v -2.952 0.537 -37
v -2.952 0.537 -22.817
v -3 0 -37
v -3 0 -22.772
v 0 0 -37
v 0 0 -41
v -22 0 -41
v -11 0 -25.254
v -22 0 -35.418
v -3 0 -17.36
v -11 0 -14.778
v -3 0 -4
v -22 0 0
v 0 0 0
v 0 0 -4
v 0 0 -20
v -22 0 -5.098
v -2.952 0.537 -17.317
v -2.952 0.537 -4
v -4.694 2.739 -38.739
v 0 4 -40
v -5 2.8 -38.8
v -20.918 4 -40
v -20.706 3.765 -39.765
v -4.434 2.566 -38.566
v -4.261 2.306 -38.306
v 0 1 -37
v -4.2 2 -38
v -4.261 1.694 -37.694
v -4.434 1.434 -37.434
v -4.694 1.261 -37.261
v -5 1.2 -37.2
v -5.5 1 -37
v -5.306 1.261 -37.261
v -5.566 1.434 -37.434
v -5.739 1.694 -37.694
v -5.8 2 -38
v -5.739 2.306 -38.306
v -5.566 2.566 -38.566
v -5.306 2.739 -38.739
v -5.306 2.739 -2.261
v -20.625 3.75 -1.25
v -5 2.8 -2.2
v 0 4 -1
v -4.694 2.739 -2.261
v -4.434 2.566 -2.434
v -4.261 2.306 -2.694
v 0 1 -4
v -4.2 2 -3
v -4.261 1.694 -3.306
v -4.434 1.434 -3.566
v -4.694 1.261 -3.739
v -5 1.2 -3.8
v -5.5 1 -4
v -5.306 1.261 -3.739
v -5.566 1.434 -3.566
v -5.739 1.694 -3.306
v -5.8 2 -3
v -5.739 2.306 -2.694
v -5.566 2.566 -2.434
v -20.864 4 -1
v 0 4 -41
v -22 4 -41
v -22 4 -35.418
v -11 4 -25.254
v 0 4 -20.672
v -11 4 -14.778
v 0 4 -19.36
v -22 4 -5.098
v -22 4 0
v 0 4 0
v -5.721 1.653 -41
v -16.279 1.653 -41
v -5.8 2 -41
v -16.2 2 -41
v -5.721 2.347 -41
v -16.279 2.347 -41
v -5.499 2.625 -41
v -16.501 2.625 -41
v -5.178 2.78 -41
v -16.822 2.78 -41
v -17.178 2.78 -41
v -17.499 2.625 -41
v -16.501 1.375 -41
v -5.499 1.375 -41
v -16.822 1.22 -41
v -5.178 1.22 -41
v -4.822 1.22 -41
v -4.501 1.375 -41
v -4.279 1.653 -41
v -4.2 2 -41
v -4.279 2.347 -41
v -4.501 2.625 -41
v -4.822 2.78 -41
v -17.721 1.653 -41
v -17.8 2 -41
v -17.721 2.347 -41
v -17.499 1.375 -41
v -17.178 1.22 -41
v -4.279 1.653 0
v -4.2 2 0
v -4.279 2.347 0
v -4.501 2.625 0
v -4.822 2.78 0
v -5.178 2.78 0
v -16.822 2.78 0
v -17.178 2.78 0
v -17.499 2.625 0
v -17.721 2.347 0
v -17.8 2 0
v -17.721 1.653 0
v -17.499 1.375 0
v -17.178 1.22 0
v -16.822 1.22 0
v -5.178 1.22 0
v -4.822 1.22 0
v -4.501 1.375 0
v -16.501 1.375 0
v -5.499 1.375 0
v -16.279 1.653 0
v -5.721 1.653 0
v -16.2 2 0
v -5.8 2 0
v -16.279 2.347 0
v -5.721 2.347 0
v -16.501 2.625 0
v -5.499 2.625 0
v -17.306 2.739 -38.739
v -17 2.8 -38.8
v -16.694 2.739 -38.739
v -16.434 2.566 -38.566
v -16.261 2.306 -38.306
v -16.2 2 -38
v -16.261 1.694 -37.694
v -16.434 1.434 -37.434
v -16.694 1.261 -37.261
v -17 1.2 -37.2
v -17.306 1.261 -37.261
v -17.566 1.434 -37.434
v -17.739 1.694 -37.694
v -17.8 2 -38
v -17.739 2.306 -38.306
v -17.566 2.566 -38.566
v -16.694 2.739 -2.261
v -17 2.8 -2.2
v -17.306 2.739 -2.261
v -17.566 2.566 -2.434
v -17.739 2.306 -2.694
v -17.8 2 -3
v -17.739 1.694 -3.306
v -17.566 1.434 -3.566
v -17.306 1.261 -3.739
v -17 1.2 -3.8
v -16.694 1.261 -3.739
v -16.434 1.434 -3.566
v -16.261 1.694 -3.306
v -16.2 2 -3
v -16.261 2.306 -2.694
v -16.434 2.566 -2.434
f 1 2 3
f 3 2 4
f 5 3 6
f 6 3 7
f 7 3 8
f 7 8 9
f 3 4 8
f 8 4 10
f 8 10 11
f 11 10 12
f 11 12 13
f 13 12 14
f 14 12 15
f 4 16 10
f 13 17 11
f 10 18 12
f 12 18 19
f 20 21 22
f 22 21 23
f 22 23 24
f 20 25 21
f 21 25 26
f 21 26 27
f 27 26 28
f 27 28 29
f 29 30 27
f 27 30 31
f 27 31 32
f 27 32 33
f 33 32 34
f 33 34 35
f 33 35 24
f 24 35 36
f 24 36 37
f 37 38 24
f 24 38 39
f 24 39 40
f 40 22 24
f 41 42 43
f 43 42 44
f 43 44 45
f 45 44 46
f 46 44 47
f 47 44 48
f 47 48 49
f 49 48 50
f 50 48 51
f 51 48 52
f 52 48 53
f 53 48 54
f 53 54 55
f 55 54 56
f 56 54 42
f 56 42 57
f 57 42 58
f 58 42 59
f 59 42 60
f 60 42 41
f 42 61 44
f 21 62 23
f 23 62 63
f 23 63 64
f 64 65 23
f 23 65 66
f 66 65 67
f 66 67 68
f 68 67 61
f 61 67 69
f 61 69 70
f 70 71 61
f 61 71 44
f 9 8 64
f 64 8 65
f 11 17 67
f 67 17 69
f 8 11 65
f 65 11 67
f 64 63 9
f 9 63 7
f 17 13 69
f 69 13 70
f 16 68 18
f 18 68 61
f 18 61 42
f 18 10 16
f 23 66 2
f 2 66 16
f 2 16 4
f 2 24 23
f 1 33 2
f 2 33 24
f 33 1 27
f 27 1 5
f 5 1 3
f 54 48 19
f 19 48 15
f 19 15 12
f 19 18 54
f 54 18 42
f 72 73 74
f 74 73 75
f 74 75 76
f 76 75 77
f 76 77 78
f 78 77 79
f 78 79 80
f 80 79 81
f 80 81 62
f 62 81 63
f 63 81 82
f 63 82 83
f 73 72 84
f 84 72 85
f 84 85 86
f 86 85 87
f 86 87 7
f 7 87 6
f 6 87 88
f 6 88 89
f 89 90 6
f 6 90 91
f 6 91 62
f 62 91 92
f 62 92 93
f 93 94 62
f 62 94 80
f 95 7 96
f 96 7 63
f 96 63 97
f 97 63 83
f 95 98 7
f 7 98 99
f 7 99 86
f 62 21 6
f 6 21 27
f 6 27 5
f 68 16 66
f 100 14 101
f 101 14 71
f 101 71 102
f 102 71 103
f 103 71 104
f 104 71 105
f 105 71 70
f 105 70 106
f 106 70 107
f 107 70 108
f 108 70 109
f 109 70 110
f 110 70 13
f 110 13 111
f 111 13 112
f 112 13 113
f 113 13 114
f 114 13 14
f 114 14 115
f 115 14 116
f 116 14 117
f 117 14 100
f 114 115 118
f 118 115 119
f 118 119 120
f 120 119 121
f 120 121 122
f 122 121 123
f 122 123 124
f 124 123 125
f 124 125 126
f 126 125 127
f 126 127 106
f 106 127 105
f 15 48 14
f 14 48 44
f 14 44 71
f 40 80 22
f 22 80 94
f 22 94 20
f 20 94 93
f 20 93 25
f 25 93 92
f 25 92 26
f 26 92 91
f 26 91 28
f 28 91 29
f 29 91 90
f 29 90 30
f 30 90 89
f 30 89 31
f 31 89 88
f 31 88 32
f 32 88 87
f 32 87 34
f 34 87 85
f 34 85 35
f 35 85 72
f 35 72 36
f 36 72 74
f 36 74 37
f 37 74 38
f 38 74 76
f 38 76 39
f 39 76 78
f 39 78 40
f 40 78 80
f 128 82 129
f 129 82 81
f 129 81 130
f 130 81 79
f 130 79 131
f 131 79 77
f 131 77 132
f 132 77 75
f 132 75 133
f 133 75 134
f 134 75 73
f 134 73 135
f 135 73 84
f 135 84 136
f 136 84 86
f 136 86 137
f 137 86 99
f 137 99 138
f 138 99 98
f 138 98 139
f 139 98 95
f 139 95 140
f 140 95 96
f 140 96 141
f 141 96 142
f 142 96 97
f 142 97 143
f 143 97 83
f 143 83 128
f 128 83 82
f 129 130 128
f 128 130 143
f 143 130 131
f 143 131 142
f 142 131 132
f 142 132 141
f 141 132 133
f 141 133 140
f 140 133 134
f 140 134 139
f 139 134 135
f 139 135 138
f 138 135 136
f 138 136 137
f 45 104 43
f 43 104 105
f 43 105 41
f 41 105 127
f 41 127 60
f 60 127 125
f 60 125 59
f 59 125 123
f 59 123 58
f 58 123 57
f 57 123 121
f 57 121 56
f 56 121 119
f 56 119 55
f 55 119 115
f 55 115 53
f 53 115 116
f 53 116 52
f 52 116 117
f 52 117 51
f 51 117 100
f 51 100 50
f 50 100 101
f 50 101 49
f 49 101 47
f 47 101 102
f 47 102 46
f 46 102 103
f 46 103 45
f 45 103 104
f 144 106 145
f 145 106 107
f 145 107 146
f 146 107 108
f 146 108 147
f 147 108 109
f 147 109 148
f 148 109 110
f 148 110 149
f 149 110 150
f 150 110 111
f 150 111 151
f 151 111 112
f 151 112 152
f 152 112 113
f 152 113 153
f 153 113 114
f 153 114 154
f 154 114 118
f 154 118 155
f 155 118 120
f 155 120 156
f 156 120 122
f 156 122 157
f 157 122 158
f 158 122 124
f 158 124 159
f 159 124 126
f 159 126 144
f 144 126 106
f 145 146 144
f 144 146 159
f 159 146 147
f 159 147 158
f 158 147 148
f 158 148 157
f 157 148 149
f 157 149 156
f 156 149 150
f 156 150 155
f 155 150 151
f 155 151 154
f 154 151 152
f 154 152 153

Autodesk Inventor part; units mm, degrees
ref_plane "YZ Plane" through (0, 0, 0) normal (1, 0, 0) x (0, 1, 0)
ref_plane "XZ Plane" through (0, 0, 0) normal (0, 1, 0) x (-1, 0, 0)
sketch "スケッチ1" plane through (0, 0, 0) normal (0, 1, 0) x (-1, 0, 0)
  line L0 (22, 0) -> (0, 0)
  line L1 (0, 0) -> (0, -41)
  line L2 (0, -41) -> (22, -41)
  line L3 (22, -41) -> (22, 0)
  dimension "d0" = 41
  dimension "d1" = 22
extrude "押し出し1" add sketch "スケッチ1" along normal blind 4
sketch "スケッチ2" plane through (0, 0, 0) normal (1, 0, 0) x (0, 0, -1)
  line L0 (0, 0) -> (41, 0) projected
  line L1 (41, 0) -> (41, 4) projected
  line L2 (0, 4) -> (41, 4) projected
  line L3 (0, 0) -> (0, 4) projected
  point P0 (20, 0)
ref_plane "作業平面1" through (-22, 4, 0) normal (0.1788854, 0.9838699, 0) x (0.7333333, -0.1333333, -0.6666667)
sketch "スケッチ3" plane through (-22, 4, 0) normal (0.1788854, 0.9838699, 0) x (0.7333333, -0.1333333, -0.6666667)
  line L0 (27.3333, 30.5596) -> (0, 0) projected
  line L1 (16.6667, -14.9071) -> (44, 15.6525) projected
  line L2 (16.6667, -14.9071) -> (44, 15.6525) projected
  line L3 (0, 0) -> (30, 0)
  line L4 (27.3333, 30.5596) -> (30, 0)
  line L5 (-20, -21.3606) -> (60, -21.3606)
  line L6 (60, -21.3606) -> (60, 40)
  line L7 (60, 40) -> (-20, 40)
  line L8 (-20, 40) -> (-20, -21.3606)
  line L9 (16.6667, -14.9071) -> (19.3333, -11.9257)
  line L10 (19.3333, -11.9257) -> (2.6667, 2.9814)
  line L11 (2.6667, 2.9814) -> (0, 0)
  line L12 (0, 0) -> (16.6667, -14.9071)
  line L13 (44, 15.6525) -> (41.3333, 12.6711)
  line L14 (41.3333, 12.6711) -> (24.6667, 27.5782)
  line L15 (24.6667, 27.5782) -> (27.3333, 30.5596)
  line L16 (27.3333, 30.5596) -> (44, 15.6525)
  point P0 (41.3333, 12.6711)
  point P1 (27.8413, 24.7387)
  point P2 (6, 0)
  dimension "d10" = 4
  dimension "d11" = 4
extrude "押し出し2" cut sketch "スケッチ3" along normal through all contours L14 L1 L4 | L1 L10 L3 | L8 L7 L6 L5
sketch "スケッチ4" plane through (0, 4, 0) normal (0, 1, 0) x (1, 0, 0)
  line L0 (0, 20.672) -> (-17.671, 37) projected
  line L1 (-22, 41) -> (-22, 0) projected
  line L2 (-17.4545, 4) -> (0, 19.36) projected
  line L3 (0, 19.36) -> (0, 20.672) projected
  line L4 (-22, 5.0983) -> (-11, 14.7783)
  line L5 (-11, 14.7783) -> (-11, 25.2537)
  line L6 (-11, 25.2537) -> (-22, 35.4177)
  line L7 (-22, 0) -> (0, 19.36) projected
  line L8 (0, 20.672) -> (-22, 41) projected
  line L9 (0, 4) -> (-17.4545, 4) projected
  line L10 (-17.671, 37) -> (0, 37) projected
  line L11 (0, 37) -> (0, 41) projected
  line L12 (0, 41) -> (-22, 41) projected
  line L13 (-22, 0) -> (0, 0) projected
  line L14 (0, 0) -> (0, 4) projected
  point P0 (-11, 20.016)
  point P1 (0, 20.016)
  dimension "d6" = 11
  dimension "d7" = 3.8274
extrude "押し出し3" cut sketch "スケッチ4" against normal through all contours L6 L5 L4 L1
chamfer "面取り1" distance 3 angle 45 2 edges at (-8.7273, 4, -4) (-8.8355, 4, -37)
chamfer "面取り2" distance 3 angle 45 1 edges at (0, 0, -12)
chamfer "面取り3" distance 3 angle 45 1 edges at (0, 0, -28.5)
sketch "スケッチ5" plane through (0, 0, -41) normal (0, 0, -1) x (-1, 0, 0)
  circle A0 centre (5, 2) radius 0.8
  circle A1 centre (17, 2) radius 0.8
  line L0 (0, 0) -> (0, 4) projected
  line L1 (22, 0) -> (22, 4) projected
  point P0 (0, 2)
  dimension "d21" = 1.6
  dimension "d22" = 1.6
  dimension "d23" = 5
  dimension "d24" = 5
extrude "押し出し4" cut sketch "スケッチ5" against normal up to surface surface through (-5.5, 2.5, -38.5) normal (0, 0.7071068, 0.7071068)
sketch "スケッチ7" plane through (-22, 0, 0) normal (0, 0, 1) x (1, 0, 0)
  circle A0 centre (17, 2) radius 0.8 projected
  circle A1 centre (5, 2) radius 0.8 projected
  point P0 (22, 0)
extrude "押し出し5" cut sketch "スケッチ7" against normal up to surface surface through (-14.3, 2.5, -2.5) normal (0, 0.7071068, -0.7071068)
equation "\"d11\" = d10"
equation "\"d24\" = d23"
properties part number "chest_cover"
